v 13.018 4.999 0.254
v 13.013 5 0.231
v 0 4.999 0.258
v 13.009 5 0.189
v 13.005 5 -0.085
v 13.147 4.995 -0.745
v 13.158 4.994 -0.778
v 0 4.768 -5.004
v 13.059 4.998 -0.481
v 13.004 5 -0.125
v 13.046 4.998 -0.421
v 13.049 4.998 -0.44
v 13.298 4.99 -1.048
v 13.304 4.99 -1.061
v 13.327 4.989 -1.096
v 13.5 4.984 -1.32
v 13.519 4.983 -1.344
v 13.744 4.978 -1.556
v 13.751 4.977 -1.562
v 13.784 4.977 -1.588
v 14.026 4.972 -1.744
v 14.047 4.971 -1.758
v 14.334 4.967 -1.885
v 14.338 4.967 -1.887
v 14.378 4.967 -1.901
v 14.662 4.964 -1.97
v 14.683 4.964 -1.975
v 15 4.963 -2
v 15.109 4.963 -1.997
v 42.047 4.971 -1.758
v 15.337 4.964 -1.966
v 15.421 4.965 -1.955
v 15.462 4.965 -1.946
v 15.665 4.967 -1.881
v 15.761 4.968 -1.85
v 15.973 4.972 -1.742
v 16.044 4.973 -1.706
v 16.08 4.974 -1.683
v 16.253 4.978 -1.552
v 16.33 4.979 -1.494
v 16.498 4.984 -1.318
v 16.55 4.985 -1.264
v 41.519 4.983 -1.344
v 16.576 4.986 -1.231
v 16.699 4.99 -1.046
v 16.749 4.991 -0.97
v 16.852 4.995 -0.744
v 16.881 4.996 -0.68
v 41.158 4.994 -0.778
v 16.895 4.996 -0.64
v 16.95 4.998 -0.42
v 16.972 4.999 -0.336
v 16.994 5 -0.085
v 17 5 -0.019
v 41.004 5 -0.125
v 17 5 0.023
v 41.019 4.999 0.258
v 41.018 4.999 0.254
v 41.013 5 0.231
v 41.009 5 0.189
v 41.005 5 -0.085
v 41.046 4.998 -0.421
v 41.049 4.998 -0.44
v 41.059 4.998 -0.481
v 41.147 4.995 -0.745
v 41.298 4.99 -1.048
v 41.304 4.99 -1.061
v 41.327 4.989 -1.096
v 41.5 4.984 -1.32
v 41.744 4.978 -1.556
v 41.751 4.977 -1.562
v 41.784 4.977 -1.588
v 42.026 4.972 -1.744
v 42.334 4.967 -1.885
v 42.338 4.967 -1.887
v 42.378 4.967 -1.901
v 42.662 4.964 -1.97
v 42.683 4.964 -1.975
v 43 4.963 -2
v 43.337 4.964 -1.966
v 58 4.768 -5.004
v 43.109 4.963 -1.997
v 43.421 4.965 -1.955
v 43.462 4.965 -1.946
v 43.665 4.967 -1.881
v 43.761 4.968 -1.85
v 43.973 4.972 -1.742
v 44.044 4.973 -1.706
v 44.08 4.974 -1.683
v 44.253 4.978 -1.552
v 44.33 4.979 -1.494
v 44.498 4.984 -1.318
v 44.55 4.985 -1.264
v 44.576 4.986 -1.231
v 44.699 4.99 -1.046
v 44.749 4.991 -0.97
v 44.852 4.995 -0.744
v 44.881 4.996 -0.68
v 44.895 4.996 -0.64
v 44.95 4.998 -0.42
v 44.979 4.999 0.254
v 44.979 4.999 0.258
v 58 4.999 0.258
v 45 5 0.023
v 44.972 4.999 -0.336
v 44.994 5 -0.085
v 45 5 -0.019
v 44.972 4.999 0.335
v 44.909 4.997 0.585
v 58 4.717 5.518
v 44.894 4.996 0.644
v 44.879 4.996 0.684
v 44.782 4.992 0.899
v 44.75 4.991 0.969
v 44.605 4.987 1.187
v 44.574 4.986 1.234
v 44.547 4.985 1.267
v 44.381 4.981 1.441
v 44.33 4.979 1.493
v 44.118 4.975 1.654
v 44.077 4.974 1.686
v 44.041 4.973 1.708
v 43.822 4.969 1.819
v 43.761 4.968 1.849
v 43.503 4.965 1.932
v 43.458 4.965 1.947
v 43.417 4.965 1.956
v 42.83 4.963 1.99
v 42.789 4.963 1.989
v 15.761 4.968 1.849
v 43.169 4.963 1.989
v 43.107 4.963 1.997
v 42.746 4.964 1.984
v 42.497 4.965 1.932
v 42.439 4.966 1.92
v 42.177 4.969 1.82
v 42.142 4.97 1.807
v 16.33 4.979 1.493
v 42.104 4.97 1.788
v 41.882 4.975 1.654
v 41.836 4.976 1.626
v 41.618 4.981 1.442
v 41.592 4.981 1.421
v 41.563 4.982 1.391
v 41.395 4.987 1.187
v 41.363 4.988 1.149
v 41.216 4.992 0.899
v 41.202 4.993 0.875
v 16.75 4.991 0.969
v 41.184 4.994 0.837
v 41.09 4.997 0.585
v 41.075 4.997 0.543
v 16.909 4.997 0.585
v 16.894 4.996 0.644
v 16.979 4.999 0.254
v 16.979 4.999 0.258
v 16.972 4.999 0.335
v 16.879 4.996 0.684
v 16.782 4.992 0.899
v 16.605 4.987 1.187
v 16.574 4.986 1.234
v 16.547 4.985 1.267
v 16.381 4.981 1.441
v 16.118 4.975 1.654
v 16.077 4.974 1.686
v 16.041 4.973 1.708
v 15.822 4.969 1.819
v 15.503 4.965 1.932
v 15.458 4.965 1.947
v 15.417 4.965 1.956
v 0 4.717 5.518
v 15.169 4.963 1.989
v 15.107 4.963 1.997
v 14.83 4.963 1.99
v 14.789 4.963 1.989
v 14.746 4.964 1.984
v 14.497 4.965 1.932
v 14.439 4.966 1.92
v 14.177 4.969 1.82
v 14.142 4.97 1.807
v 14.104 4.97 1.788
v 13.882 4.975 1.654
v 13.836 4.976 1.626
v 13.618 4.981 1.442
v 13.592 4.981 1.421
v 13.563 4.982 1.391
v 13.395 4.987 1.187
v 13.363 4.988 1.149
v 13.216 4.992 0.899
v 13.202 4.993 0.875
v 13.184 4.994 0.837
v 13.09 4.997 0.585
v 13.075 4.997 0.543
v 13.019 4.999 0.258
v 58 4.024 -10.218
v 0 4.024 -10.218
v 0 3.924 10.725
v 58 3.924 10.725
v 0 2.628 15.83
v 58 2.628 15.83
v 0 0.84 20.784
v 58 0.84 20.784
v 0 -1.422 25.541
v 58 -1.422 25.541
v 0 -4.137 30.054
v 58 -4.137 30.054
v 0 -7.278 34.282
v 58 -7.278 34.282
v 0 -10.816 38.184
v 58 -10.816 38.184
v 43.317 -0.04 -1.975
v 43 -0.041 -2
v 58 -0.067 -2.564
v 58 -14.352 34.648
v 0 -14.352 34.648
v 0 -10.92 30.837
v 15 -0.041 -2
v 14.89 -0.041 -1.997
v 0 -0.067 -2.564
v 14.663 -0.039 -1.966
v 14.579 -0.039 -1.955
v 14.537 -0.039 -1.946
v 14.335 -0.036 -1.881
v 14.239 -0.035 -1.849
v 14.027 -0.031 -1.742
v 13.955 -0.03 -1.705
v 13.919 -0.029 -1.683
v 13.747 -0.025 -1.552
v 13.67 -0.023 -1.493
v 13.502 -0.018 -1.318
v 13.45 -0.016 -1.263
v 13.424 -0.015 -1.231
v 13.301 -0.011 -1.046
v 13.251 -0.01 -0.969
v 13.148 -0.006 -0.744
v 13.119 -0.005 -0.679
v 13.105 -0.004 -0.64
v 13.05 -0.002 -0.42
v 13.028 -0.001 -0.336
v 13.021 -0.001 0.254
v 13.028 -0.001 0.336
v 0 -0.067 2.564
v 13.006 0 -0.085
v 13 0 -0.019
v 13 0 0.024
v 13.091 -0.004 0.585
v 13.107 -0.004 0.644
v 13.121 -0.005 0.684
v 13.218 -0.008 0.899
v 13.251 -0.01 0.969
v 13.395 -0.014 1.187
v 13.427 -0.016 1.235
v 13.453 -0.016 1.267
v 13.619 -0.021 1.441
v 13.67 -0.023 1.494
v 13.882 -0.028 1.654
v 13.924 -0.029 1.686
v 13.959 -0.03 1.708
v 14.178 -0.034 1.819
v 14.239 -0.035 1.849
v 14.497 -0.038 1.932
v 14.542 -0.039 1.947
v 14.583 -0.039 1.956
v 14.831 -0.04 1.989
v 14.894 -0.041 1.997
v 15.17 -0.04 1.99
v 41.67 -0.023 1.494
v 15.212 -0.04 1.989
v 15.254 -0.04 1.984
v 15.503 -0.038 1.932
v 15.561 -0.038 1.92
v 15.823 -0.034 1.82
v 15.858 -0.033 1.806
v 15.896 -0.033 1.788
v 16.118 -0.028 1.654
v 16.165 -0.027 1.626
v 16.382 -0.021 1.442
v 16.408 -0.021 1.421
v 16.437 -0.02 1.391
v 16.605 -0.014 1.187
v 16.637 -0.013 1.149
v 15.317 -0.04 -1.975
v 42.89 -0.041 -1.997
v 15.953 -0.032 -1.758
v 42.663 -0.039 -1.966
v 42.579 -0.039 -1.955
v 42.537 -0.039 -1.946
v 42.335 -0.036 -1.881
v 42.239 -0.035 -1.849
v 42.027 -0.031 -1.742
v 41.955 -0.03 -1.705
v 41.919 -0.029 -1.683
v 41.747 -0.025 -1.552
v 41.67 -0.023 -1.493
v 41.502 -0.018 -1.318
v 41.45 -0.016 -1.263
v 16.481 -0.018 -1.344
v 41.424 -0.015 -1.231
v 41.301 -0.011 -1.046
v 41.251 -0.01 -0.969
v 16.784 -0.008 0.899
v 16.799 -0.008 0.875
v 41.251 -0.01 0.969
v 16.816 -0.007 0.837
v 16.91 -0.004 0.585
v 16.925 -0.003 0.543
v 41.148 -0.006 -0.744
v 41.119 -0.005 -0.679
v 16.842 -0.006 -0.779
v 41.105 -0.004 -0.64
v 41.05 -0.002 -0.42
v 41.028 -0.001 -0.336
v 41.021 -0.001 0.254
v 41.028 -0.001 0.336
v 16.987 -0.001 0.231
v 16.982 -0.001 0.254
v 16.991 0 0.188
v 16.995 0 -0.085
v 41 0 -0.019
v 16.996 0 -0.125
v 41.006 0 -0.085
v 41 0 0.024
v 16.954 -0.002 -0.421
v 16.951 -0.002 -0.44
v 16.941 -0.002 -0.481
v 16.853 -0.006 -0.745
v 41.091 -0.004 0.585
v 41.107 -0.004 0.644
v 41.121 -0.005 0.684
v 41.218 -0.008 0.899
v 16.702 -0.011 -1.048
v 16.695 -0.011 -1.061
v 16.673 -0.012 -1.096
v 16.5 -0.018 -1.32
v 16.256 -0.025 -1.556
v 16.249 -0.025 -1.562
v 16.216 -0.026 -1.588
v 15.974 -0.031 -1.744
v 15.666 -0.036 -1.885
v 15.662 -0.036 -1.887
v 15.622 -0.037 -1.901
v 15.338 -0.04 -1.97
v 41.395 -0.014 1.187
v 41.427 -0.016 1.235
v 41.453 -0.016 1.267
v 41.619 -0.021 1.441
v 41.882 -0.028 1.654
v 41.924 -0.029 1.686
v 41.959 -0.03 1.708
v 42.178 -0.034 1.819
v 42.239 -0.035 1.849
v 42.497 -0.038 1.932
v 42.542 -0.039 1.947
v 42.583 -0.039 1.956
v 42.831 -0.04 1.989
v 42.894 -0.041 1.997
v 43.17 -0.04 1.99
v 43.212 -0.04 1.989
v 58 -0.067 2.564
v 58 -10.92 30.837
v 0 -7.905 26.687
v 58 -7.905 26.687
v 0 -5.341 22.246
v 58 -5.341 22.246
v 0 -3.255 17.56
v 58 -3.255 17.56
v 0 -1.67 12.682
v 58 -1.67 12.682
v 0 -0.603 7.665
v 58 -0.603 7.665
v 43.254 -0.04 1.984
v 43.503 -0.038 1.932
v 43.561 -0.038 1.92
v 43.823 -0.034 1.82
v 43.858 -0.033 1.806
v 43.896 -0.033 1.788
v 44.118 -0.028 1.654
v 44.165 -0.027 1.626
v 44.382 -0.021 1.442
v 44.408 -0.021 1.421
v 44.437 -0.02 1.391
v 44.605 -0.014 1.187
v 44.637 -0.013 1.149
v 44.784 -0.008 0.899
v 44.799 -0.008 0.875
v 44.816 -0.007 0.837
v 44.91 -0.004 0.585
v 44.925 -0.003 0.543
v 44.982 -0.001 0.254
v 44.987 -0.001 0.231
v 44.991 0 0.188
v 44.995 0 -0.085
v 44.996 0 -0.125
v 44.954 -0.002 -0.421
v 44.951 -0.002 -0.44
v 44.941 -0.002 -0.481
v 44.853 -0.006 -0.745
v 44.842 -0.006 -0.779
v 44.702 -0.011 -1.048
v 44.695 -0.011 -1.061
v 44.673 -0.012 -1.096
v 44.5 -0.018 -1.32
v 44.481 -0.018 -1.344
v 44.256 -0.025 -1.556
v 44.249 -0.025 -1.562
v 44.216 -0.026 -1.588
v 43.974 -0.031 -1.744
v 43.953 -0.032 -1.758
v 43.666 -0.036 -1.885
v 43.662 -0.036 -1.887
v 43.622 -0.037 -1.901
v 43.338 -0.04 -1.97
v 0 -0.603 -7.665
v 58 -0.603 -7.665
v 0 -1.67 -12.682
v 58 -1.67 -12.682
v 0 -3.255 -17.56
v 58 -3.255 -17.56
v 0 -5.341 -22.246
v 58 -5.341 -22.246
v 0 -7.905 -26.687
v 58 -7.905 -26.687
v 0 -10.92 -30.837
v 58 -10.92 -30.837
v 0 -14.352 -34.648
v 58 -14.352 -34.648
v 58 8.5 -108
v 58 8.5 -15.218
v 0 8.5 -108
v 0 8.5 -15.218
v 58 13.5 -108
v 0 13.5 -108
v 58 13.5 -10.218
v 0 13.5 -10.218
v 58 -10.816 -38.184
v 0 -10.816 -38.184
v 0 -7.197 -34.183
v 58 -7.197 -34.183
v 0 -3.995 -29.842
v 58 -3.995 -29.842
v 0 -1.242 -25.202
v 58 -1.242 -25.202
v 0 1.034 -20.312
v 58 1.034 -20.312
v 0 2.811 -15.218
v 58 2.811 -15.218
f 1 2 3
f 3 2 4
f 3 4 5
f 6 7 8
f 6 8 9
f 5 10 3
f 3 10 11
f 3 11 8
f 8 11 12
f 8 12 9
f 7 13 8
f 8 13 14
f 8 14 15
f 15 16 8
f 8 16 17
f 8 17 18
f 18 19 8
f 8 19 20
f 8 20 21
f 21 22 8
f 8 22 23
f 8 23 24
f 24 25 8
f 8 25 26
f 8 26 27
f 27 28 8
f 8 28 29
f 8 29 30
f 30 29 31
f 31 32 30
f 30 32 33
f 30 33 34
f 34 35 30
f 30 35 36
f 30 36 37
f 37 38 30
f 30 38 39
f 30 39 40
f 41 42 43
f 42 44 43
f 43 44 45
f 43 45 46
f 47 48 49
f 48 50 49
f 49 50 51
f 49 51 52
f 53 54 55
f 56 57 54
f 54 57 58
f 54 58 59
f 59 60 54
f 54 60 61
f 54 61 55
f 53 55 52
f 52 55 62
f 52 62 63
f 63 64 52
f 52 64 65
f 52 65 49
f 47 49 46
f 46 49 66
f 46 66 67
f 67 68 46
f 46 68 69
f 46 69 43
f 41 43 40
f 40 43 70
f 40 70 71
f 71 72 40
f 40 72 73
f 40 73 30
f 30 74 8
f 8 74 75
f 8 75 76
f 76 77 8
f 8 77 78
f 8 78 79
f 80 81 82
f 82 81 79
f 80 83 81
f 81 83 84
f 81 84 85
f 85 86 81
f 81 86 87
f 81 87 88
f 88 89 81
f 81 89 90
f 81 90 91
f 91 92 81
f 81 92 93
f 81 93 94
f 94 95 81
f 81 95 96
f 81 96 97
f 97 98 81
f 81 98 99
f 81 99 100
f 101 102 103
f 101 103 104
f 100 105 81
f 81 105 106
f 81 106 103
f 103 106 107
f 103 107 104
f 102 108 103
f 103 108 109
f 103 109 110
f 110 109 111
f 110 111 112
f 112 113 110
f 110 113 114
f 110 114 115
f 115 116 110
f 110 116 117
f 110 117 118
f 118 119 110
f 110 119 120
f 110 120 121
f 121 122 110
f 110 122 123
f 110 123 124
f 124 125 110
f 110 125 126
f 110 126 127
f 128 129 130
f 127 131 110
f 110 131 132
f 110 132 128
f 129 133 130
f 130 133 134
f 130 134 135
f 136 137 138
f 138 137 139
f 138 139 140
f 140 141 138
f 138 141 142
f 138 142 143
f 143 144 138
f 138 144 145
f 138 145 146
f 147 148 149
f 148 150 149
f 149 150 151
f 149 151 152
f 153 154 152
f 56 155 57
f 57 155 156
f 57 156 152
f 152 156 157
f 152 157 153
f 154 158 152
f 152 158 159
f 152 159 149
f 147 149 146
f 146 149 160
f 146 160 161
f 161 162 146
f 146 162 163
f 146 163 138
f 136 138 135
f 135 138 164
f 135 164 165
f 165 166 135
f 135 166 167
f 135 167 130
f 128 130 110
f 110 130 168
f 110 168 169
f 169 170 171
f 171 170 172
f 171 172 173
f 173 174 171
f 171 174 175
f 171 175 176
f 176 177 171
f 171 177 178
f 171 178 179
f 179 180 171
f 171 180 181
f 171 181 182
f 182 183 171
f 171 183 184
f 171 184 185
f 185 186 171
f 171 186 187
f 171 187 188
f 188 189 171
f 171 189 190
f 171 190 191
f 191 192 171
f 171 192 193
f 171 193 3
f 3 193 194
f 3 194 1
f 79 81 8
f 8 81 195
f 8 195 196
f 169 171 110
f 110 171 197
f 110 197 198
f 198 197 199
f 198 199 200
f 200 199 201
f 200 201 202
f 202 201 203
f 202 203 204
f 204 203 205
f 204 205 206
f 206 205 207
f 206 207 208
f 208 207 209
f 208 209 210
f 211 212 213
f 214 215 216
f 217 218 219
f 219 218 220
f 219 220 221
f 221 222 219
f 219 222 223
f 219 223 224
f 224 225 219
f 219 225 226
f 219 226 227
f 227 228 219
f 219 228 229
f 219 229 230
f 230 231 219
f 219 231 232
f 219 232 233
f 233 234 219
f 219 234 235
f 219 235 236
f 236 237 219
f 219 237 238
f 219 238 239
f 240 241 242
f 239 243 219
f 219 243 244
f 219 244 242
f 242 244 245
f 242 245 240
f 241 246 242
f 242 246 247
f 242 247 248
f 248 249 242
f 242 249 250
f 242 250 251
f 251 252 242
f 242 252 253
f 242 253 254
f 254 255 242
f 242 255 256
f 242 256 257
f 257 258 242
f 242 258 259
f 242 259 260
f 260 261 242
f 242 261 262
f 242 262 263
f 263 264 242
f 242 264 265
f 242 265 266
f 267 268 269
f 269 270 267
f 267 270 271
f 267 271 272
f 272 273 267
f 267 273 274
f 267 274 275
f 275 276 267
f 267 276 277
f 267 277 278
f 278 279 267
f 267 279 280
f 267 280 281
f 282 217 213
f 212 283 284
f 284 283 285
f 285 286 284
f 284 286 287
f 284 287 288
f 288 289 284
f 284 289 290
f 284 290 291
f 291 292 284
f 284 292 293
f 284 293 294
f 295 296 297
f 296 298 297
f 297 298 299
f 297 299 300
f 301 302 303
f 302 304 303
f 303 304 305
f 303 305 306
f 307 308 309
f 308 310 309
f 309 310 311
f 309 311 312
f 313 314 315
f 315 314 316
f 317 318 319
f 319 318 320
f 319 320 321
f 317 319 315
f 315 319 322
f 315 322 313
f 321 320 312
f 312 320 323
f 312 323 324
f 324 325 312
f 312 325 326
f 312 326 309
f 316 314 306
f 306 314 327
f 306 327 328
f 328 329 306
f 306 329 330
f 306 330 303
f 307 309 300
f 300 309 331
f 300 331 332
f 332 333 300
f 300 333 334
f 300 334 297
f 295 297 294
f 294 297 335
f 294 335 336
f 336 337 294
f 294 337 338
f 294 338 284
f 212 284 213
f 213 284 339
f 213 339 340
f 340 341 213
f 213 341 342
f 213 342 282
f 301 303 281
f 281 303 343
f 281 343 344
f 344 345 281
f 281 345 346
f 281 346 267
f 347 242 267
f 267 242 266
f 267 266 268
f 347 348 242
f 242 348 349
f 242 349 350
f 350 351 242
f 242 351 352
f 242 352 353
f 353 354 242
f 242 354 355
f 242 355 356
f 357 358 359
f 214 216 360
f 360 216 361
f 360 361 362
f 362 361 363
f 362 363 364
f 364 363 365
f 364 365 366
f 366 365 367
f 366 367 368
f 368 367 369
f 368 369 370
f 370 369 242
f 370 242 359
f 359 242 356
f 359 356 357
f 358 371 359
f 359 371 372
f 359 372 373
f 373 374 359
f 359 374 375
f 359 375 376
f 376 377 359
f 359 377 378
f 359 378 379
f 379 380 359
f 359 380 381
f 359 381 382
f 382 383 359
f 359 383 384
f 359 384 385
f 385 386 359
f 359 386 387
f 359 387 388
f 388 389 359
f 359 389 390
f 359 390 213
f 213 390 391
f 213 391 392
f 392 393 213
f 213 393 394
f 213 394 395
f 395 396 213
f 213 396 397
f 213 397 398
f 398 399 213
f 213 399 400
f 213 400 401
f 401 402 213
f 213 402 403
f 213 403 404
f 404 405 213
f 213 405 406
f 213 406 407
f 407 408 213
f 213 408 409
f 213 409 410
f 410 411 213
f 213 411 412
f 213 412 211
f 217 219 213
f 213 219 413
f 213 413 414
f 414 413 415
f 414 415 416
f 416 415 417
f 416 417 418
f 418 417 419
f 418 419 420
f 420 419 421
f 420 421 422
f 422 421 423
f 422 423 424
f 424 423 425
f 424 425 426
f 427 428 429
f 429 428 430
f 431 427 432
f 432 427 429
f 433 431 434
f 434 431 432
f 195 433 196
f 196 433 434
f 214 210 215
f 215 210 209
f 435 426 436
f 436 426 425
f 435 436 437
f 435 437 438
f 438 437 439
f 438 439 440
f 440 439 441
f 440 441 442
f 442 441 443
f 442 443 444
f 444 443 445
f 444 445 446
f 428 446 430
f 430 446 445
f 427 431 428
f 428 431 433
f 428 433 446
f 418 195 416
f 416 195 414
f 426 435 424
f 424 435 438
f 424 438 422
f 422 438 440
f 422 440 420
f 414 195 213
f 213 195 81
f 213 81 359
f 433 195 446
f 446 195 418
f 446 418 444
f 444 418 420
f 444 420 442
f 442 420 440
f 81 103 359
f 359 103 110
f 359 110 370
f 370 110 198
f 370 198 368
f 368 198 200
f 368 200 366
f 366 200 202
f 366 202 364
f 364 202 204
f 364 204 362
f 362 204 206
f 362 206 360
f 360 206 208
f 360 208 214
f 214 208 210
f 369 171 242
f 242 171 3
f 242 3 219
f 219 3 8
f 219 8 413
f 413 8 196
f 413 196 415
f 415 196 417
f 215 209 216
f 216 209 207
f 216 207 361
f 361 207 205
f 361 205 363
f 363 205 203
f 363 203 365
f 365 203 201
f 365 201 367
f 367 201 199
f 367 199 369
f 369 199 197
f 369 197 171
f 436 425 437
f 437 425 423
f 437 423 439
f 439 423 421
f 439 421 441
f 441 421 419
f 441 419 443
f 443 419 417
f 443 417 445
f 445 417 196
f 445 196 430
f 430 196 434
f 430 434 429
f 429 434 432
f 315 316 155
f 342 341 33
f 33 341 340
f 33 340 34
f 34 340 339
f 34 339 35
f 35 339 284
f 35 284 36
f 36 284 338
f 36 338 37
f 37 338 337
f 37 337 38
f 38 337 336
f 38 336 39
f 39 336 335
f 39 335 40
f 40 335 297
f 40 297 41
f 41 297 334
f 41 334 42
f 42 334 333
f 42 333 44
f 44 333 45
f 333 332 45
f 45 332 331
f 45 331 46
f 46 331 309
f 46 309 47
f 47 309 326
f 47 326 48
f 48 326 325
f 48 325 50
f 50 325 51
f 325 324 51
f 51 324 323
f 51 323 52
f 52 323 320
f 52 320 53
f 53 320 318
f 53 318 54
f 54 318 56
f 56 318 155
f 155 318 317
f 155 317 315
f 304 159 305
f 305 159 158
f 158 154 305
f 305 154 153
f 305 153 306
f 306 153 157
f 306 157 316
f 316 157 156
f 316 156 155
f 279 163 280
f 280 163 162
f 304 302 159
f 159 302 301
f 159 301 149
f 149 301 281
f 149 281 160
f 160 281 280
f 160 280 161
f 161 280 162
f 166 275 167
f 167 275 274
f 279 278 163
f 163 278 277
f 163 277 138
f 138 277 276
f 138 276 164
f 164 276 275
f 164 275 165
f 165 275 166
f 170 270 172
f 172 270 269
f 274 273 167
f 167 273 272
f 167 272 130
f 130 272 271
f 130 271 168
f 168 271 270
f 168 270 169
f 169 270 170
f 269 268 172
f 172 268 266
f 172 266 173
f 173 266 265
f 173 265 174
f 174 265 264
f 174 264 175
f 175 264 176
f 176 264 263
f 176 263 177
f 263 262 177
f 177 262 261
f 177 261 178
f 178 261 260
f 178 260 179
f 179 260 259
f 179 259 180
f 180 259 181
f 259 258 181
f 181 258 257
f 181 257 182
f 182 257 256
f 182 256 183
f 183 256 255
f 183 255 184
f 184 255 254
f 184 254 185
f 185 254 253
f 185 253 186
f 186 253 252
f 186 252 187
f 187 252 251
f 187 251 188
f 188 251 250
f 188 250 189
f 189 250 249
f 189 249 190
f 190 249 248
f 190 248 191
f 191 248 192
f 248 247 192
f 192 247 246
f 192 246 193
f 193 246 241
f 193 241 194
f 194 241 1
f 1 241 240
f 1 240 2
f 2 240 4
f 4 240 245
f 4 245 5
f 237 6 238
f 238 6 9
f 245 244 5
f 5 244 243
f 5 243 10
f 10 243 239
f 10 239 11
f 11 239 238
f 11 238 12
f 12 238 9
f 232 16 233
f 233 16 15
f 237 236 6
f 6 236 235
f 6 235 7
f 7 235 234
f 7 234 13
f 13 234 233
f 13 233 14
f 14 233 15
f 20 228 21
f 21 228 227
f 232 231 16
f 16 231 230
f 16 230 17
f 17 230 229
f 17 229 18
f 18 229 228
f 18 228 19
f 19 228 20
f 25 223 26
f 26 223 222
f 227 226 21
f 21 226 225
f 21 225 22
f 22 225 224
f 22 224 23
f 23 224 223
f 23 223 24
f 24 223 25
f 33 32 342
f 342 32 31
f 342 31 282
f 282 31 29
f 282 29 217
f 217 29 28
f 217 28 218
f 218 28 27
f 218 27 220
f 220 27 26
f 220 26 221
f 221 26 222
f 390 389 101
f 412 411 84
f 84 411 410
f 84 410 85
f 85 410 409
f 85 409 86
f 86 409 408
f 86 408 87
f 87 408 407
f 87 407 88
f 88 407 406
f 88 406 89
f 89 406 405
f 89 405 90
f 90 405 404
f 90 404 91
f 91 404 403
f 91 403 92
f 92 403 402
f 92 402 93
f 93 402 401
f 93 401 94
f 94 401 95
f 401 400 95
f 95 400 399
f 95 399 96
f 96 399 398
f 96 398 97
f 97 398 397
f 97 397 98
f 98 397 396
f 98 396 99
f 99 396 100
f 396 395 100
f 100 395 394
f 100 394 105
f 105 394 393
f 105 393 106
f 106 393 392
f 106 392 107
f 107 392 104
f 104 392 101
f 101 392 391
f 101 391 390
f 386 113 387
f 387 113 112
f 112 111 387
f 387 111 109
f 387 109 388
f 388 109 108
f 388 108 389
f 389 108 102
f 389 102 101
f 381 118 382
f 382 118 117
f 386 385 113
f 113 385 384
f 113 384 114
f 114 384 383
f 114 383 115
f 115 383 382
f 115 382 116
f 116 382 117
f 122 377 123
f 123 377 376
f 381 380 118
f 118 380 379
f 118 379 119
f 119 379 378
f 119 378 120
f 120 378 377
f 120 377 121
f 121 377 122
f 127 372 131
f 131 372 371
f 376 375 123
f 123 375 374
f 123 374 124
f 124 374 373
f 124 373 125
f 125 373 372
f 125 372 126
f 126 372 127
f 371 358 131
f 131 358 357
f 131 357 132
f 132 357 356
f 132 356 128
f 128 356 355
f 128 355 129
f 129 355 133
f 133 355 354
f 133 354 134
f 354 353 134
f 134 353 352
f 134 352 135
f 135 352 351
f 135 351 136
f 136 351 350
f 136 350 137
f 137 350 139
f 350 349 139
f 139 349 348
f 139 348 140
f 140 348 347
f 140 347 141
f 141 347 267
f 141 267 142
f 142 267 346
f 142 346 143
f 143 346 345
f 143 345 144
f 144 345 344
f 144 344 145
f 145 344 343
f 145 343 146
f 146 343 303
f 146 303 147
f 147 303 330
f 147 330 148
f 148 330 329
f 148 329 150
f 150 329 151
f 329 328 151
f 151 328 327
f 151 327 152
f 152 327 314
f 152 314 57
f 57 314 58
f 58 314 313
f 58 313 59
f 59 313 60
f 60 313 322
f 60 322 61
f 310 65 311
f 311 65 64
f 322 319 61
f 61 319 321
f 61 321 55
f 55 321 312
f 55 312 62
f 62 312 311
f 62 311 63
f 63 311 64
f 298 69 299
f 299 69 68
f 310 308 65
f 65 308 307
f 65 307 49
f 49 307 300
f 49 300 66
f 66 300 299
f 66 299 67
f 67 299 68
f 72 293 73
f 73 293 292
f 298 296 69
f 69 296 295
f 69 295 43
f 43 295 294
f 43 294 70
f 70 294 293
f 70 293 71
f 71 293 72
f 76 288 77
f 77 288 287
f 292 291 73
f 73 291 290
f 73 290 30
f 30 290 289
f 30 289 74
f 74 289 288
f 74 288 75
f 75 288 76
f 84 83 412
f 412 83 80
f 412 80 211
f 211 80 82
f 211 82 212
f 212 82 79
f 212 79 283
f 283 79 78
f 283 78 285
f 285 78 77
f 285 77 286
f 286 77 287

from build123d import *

# Parameters (mm, degrees)
BOSS_EXTRUDE2_DEPTH     = 58
SKETCH4_R               = 2
CUT_EXTRUDE2_DEPTH      = 58
CUT_EXTRUDE2_DEPTH_BACK = 58


with BuildPart() as part:
    # Sketch3 → Boss-Extrude2 (new body)
    with BuildSketch(Plane(origin=(0, 0, 0), x_dir=(0, 0, -1), z_dir=(1, 0, 0))):
        with BuildLine():
            Line((-34.648232278, -14.351767722), (-38.183766184, -10.816233816))
            ThreePointArc((-38.183766184, -10.816233816), (-15.829835797, 2.627669894), (10.217922448, 4.024466625))
            Line((10.217922448, 4.024466625), (10.217922448, 13.5))
            Line((10.217922448, 13.5), (108, 13.5))
            Line((108, 13.5), (108, 8.5))
            Line((108, 8.5), (15.217922448, 8.5))
            Line((15.217922448, 8.5), (15.217922448, 2.811338878))
            ThreePointArc((15.217922448, 2.811338878), (27.556537728, -2.560391599), (38.183766184, -10.816233816))
            Line((38.183766184, -10.816233816), (34.648232278, -14.351767722))
            ThreePointArc((34.648232278, -14.351767722), (0, 0), (-34.648232278, -14.351767722))
        make_face()
    extrude(amount=BOSS_EXTRUDE2_DEPTH)

    # Sketch4 → Cut-Extrude2 (cut, two sides)
    with BuildSketch(Plane(origin=(0, 0, 0), x_dir=(1, 0, 0), z_dir=(0, 1, 0))) as cut_extrude2_sk:
        with Locations((15, 0)):
            Circle(SKETCH4_R)
        with Locations((43, 0)):
            Circle(SKETCH4_R)
    extrude(amount=CUT_EXTRUDE2_DEPTH, mode=Mode.SUBTRACT)
    extrude(cut_extrude2_sk.sketch, amount=-CUT_EXTRUDE2_DEPTH_BACK, mode=Mode.SUBTRACT)


solid = part.part
